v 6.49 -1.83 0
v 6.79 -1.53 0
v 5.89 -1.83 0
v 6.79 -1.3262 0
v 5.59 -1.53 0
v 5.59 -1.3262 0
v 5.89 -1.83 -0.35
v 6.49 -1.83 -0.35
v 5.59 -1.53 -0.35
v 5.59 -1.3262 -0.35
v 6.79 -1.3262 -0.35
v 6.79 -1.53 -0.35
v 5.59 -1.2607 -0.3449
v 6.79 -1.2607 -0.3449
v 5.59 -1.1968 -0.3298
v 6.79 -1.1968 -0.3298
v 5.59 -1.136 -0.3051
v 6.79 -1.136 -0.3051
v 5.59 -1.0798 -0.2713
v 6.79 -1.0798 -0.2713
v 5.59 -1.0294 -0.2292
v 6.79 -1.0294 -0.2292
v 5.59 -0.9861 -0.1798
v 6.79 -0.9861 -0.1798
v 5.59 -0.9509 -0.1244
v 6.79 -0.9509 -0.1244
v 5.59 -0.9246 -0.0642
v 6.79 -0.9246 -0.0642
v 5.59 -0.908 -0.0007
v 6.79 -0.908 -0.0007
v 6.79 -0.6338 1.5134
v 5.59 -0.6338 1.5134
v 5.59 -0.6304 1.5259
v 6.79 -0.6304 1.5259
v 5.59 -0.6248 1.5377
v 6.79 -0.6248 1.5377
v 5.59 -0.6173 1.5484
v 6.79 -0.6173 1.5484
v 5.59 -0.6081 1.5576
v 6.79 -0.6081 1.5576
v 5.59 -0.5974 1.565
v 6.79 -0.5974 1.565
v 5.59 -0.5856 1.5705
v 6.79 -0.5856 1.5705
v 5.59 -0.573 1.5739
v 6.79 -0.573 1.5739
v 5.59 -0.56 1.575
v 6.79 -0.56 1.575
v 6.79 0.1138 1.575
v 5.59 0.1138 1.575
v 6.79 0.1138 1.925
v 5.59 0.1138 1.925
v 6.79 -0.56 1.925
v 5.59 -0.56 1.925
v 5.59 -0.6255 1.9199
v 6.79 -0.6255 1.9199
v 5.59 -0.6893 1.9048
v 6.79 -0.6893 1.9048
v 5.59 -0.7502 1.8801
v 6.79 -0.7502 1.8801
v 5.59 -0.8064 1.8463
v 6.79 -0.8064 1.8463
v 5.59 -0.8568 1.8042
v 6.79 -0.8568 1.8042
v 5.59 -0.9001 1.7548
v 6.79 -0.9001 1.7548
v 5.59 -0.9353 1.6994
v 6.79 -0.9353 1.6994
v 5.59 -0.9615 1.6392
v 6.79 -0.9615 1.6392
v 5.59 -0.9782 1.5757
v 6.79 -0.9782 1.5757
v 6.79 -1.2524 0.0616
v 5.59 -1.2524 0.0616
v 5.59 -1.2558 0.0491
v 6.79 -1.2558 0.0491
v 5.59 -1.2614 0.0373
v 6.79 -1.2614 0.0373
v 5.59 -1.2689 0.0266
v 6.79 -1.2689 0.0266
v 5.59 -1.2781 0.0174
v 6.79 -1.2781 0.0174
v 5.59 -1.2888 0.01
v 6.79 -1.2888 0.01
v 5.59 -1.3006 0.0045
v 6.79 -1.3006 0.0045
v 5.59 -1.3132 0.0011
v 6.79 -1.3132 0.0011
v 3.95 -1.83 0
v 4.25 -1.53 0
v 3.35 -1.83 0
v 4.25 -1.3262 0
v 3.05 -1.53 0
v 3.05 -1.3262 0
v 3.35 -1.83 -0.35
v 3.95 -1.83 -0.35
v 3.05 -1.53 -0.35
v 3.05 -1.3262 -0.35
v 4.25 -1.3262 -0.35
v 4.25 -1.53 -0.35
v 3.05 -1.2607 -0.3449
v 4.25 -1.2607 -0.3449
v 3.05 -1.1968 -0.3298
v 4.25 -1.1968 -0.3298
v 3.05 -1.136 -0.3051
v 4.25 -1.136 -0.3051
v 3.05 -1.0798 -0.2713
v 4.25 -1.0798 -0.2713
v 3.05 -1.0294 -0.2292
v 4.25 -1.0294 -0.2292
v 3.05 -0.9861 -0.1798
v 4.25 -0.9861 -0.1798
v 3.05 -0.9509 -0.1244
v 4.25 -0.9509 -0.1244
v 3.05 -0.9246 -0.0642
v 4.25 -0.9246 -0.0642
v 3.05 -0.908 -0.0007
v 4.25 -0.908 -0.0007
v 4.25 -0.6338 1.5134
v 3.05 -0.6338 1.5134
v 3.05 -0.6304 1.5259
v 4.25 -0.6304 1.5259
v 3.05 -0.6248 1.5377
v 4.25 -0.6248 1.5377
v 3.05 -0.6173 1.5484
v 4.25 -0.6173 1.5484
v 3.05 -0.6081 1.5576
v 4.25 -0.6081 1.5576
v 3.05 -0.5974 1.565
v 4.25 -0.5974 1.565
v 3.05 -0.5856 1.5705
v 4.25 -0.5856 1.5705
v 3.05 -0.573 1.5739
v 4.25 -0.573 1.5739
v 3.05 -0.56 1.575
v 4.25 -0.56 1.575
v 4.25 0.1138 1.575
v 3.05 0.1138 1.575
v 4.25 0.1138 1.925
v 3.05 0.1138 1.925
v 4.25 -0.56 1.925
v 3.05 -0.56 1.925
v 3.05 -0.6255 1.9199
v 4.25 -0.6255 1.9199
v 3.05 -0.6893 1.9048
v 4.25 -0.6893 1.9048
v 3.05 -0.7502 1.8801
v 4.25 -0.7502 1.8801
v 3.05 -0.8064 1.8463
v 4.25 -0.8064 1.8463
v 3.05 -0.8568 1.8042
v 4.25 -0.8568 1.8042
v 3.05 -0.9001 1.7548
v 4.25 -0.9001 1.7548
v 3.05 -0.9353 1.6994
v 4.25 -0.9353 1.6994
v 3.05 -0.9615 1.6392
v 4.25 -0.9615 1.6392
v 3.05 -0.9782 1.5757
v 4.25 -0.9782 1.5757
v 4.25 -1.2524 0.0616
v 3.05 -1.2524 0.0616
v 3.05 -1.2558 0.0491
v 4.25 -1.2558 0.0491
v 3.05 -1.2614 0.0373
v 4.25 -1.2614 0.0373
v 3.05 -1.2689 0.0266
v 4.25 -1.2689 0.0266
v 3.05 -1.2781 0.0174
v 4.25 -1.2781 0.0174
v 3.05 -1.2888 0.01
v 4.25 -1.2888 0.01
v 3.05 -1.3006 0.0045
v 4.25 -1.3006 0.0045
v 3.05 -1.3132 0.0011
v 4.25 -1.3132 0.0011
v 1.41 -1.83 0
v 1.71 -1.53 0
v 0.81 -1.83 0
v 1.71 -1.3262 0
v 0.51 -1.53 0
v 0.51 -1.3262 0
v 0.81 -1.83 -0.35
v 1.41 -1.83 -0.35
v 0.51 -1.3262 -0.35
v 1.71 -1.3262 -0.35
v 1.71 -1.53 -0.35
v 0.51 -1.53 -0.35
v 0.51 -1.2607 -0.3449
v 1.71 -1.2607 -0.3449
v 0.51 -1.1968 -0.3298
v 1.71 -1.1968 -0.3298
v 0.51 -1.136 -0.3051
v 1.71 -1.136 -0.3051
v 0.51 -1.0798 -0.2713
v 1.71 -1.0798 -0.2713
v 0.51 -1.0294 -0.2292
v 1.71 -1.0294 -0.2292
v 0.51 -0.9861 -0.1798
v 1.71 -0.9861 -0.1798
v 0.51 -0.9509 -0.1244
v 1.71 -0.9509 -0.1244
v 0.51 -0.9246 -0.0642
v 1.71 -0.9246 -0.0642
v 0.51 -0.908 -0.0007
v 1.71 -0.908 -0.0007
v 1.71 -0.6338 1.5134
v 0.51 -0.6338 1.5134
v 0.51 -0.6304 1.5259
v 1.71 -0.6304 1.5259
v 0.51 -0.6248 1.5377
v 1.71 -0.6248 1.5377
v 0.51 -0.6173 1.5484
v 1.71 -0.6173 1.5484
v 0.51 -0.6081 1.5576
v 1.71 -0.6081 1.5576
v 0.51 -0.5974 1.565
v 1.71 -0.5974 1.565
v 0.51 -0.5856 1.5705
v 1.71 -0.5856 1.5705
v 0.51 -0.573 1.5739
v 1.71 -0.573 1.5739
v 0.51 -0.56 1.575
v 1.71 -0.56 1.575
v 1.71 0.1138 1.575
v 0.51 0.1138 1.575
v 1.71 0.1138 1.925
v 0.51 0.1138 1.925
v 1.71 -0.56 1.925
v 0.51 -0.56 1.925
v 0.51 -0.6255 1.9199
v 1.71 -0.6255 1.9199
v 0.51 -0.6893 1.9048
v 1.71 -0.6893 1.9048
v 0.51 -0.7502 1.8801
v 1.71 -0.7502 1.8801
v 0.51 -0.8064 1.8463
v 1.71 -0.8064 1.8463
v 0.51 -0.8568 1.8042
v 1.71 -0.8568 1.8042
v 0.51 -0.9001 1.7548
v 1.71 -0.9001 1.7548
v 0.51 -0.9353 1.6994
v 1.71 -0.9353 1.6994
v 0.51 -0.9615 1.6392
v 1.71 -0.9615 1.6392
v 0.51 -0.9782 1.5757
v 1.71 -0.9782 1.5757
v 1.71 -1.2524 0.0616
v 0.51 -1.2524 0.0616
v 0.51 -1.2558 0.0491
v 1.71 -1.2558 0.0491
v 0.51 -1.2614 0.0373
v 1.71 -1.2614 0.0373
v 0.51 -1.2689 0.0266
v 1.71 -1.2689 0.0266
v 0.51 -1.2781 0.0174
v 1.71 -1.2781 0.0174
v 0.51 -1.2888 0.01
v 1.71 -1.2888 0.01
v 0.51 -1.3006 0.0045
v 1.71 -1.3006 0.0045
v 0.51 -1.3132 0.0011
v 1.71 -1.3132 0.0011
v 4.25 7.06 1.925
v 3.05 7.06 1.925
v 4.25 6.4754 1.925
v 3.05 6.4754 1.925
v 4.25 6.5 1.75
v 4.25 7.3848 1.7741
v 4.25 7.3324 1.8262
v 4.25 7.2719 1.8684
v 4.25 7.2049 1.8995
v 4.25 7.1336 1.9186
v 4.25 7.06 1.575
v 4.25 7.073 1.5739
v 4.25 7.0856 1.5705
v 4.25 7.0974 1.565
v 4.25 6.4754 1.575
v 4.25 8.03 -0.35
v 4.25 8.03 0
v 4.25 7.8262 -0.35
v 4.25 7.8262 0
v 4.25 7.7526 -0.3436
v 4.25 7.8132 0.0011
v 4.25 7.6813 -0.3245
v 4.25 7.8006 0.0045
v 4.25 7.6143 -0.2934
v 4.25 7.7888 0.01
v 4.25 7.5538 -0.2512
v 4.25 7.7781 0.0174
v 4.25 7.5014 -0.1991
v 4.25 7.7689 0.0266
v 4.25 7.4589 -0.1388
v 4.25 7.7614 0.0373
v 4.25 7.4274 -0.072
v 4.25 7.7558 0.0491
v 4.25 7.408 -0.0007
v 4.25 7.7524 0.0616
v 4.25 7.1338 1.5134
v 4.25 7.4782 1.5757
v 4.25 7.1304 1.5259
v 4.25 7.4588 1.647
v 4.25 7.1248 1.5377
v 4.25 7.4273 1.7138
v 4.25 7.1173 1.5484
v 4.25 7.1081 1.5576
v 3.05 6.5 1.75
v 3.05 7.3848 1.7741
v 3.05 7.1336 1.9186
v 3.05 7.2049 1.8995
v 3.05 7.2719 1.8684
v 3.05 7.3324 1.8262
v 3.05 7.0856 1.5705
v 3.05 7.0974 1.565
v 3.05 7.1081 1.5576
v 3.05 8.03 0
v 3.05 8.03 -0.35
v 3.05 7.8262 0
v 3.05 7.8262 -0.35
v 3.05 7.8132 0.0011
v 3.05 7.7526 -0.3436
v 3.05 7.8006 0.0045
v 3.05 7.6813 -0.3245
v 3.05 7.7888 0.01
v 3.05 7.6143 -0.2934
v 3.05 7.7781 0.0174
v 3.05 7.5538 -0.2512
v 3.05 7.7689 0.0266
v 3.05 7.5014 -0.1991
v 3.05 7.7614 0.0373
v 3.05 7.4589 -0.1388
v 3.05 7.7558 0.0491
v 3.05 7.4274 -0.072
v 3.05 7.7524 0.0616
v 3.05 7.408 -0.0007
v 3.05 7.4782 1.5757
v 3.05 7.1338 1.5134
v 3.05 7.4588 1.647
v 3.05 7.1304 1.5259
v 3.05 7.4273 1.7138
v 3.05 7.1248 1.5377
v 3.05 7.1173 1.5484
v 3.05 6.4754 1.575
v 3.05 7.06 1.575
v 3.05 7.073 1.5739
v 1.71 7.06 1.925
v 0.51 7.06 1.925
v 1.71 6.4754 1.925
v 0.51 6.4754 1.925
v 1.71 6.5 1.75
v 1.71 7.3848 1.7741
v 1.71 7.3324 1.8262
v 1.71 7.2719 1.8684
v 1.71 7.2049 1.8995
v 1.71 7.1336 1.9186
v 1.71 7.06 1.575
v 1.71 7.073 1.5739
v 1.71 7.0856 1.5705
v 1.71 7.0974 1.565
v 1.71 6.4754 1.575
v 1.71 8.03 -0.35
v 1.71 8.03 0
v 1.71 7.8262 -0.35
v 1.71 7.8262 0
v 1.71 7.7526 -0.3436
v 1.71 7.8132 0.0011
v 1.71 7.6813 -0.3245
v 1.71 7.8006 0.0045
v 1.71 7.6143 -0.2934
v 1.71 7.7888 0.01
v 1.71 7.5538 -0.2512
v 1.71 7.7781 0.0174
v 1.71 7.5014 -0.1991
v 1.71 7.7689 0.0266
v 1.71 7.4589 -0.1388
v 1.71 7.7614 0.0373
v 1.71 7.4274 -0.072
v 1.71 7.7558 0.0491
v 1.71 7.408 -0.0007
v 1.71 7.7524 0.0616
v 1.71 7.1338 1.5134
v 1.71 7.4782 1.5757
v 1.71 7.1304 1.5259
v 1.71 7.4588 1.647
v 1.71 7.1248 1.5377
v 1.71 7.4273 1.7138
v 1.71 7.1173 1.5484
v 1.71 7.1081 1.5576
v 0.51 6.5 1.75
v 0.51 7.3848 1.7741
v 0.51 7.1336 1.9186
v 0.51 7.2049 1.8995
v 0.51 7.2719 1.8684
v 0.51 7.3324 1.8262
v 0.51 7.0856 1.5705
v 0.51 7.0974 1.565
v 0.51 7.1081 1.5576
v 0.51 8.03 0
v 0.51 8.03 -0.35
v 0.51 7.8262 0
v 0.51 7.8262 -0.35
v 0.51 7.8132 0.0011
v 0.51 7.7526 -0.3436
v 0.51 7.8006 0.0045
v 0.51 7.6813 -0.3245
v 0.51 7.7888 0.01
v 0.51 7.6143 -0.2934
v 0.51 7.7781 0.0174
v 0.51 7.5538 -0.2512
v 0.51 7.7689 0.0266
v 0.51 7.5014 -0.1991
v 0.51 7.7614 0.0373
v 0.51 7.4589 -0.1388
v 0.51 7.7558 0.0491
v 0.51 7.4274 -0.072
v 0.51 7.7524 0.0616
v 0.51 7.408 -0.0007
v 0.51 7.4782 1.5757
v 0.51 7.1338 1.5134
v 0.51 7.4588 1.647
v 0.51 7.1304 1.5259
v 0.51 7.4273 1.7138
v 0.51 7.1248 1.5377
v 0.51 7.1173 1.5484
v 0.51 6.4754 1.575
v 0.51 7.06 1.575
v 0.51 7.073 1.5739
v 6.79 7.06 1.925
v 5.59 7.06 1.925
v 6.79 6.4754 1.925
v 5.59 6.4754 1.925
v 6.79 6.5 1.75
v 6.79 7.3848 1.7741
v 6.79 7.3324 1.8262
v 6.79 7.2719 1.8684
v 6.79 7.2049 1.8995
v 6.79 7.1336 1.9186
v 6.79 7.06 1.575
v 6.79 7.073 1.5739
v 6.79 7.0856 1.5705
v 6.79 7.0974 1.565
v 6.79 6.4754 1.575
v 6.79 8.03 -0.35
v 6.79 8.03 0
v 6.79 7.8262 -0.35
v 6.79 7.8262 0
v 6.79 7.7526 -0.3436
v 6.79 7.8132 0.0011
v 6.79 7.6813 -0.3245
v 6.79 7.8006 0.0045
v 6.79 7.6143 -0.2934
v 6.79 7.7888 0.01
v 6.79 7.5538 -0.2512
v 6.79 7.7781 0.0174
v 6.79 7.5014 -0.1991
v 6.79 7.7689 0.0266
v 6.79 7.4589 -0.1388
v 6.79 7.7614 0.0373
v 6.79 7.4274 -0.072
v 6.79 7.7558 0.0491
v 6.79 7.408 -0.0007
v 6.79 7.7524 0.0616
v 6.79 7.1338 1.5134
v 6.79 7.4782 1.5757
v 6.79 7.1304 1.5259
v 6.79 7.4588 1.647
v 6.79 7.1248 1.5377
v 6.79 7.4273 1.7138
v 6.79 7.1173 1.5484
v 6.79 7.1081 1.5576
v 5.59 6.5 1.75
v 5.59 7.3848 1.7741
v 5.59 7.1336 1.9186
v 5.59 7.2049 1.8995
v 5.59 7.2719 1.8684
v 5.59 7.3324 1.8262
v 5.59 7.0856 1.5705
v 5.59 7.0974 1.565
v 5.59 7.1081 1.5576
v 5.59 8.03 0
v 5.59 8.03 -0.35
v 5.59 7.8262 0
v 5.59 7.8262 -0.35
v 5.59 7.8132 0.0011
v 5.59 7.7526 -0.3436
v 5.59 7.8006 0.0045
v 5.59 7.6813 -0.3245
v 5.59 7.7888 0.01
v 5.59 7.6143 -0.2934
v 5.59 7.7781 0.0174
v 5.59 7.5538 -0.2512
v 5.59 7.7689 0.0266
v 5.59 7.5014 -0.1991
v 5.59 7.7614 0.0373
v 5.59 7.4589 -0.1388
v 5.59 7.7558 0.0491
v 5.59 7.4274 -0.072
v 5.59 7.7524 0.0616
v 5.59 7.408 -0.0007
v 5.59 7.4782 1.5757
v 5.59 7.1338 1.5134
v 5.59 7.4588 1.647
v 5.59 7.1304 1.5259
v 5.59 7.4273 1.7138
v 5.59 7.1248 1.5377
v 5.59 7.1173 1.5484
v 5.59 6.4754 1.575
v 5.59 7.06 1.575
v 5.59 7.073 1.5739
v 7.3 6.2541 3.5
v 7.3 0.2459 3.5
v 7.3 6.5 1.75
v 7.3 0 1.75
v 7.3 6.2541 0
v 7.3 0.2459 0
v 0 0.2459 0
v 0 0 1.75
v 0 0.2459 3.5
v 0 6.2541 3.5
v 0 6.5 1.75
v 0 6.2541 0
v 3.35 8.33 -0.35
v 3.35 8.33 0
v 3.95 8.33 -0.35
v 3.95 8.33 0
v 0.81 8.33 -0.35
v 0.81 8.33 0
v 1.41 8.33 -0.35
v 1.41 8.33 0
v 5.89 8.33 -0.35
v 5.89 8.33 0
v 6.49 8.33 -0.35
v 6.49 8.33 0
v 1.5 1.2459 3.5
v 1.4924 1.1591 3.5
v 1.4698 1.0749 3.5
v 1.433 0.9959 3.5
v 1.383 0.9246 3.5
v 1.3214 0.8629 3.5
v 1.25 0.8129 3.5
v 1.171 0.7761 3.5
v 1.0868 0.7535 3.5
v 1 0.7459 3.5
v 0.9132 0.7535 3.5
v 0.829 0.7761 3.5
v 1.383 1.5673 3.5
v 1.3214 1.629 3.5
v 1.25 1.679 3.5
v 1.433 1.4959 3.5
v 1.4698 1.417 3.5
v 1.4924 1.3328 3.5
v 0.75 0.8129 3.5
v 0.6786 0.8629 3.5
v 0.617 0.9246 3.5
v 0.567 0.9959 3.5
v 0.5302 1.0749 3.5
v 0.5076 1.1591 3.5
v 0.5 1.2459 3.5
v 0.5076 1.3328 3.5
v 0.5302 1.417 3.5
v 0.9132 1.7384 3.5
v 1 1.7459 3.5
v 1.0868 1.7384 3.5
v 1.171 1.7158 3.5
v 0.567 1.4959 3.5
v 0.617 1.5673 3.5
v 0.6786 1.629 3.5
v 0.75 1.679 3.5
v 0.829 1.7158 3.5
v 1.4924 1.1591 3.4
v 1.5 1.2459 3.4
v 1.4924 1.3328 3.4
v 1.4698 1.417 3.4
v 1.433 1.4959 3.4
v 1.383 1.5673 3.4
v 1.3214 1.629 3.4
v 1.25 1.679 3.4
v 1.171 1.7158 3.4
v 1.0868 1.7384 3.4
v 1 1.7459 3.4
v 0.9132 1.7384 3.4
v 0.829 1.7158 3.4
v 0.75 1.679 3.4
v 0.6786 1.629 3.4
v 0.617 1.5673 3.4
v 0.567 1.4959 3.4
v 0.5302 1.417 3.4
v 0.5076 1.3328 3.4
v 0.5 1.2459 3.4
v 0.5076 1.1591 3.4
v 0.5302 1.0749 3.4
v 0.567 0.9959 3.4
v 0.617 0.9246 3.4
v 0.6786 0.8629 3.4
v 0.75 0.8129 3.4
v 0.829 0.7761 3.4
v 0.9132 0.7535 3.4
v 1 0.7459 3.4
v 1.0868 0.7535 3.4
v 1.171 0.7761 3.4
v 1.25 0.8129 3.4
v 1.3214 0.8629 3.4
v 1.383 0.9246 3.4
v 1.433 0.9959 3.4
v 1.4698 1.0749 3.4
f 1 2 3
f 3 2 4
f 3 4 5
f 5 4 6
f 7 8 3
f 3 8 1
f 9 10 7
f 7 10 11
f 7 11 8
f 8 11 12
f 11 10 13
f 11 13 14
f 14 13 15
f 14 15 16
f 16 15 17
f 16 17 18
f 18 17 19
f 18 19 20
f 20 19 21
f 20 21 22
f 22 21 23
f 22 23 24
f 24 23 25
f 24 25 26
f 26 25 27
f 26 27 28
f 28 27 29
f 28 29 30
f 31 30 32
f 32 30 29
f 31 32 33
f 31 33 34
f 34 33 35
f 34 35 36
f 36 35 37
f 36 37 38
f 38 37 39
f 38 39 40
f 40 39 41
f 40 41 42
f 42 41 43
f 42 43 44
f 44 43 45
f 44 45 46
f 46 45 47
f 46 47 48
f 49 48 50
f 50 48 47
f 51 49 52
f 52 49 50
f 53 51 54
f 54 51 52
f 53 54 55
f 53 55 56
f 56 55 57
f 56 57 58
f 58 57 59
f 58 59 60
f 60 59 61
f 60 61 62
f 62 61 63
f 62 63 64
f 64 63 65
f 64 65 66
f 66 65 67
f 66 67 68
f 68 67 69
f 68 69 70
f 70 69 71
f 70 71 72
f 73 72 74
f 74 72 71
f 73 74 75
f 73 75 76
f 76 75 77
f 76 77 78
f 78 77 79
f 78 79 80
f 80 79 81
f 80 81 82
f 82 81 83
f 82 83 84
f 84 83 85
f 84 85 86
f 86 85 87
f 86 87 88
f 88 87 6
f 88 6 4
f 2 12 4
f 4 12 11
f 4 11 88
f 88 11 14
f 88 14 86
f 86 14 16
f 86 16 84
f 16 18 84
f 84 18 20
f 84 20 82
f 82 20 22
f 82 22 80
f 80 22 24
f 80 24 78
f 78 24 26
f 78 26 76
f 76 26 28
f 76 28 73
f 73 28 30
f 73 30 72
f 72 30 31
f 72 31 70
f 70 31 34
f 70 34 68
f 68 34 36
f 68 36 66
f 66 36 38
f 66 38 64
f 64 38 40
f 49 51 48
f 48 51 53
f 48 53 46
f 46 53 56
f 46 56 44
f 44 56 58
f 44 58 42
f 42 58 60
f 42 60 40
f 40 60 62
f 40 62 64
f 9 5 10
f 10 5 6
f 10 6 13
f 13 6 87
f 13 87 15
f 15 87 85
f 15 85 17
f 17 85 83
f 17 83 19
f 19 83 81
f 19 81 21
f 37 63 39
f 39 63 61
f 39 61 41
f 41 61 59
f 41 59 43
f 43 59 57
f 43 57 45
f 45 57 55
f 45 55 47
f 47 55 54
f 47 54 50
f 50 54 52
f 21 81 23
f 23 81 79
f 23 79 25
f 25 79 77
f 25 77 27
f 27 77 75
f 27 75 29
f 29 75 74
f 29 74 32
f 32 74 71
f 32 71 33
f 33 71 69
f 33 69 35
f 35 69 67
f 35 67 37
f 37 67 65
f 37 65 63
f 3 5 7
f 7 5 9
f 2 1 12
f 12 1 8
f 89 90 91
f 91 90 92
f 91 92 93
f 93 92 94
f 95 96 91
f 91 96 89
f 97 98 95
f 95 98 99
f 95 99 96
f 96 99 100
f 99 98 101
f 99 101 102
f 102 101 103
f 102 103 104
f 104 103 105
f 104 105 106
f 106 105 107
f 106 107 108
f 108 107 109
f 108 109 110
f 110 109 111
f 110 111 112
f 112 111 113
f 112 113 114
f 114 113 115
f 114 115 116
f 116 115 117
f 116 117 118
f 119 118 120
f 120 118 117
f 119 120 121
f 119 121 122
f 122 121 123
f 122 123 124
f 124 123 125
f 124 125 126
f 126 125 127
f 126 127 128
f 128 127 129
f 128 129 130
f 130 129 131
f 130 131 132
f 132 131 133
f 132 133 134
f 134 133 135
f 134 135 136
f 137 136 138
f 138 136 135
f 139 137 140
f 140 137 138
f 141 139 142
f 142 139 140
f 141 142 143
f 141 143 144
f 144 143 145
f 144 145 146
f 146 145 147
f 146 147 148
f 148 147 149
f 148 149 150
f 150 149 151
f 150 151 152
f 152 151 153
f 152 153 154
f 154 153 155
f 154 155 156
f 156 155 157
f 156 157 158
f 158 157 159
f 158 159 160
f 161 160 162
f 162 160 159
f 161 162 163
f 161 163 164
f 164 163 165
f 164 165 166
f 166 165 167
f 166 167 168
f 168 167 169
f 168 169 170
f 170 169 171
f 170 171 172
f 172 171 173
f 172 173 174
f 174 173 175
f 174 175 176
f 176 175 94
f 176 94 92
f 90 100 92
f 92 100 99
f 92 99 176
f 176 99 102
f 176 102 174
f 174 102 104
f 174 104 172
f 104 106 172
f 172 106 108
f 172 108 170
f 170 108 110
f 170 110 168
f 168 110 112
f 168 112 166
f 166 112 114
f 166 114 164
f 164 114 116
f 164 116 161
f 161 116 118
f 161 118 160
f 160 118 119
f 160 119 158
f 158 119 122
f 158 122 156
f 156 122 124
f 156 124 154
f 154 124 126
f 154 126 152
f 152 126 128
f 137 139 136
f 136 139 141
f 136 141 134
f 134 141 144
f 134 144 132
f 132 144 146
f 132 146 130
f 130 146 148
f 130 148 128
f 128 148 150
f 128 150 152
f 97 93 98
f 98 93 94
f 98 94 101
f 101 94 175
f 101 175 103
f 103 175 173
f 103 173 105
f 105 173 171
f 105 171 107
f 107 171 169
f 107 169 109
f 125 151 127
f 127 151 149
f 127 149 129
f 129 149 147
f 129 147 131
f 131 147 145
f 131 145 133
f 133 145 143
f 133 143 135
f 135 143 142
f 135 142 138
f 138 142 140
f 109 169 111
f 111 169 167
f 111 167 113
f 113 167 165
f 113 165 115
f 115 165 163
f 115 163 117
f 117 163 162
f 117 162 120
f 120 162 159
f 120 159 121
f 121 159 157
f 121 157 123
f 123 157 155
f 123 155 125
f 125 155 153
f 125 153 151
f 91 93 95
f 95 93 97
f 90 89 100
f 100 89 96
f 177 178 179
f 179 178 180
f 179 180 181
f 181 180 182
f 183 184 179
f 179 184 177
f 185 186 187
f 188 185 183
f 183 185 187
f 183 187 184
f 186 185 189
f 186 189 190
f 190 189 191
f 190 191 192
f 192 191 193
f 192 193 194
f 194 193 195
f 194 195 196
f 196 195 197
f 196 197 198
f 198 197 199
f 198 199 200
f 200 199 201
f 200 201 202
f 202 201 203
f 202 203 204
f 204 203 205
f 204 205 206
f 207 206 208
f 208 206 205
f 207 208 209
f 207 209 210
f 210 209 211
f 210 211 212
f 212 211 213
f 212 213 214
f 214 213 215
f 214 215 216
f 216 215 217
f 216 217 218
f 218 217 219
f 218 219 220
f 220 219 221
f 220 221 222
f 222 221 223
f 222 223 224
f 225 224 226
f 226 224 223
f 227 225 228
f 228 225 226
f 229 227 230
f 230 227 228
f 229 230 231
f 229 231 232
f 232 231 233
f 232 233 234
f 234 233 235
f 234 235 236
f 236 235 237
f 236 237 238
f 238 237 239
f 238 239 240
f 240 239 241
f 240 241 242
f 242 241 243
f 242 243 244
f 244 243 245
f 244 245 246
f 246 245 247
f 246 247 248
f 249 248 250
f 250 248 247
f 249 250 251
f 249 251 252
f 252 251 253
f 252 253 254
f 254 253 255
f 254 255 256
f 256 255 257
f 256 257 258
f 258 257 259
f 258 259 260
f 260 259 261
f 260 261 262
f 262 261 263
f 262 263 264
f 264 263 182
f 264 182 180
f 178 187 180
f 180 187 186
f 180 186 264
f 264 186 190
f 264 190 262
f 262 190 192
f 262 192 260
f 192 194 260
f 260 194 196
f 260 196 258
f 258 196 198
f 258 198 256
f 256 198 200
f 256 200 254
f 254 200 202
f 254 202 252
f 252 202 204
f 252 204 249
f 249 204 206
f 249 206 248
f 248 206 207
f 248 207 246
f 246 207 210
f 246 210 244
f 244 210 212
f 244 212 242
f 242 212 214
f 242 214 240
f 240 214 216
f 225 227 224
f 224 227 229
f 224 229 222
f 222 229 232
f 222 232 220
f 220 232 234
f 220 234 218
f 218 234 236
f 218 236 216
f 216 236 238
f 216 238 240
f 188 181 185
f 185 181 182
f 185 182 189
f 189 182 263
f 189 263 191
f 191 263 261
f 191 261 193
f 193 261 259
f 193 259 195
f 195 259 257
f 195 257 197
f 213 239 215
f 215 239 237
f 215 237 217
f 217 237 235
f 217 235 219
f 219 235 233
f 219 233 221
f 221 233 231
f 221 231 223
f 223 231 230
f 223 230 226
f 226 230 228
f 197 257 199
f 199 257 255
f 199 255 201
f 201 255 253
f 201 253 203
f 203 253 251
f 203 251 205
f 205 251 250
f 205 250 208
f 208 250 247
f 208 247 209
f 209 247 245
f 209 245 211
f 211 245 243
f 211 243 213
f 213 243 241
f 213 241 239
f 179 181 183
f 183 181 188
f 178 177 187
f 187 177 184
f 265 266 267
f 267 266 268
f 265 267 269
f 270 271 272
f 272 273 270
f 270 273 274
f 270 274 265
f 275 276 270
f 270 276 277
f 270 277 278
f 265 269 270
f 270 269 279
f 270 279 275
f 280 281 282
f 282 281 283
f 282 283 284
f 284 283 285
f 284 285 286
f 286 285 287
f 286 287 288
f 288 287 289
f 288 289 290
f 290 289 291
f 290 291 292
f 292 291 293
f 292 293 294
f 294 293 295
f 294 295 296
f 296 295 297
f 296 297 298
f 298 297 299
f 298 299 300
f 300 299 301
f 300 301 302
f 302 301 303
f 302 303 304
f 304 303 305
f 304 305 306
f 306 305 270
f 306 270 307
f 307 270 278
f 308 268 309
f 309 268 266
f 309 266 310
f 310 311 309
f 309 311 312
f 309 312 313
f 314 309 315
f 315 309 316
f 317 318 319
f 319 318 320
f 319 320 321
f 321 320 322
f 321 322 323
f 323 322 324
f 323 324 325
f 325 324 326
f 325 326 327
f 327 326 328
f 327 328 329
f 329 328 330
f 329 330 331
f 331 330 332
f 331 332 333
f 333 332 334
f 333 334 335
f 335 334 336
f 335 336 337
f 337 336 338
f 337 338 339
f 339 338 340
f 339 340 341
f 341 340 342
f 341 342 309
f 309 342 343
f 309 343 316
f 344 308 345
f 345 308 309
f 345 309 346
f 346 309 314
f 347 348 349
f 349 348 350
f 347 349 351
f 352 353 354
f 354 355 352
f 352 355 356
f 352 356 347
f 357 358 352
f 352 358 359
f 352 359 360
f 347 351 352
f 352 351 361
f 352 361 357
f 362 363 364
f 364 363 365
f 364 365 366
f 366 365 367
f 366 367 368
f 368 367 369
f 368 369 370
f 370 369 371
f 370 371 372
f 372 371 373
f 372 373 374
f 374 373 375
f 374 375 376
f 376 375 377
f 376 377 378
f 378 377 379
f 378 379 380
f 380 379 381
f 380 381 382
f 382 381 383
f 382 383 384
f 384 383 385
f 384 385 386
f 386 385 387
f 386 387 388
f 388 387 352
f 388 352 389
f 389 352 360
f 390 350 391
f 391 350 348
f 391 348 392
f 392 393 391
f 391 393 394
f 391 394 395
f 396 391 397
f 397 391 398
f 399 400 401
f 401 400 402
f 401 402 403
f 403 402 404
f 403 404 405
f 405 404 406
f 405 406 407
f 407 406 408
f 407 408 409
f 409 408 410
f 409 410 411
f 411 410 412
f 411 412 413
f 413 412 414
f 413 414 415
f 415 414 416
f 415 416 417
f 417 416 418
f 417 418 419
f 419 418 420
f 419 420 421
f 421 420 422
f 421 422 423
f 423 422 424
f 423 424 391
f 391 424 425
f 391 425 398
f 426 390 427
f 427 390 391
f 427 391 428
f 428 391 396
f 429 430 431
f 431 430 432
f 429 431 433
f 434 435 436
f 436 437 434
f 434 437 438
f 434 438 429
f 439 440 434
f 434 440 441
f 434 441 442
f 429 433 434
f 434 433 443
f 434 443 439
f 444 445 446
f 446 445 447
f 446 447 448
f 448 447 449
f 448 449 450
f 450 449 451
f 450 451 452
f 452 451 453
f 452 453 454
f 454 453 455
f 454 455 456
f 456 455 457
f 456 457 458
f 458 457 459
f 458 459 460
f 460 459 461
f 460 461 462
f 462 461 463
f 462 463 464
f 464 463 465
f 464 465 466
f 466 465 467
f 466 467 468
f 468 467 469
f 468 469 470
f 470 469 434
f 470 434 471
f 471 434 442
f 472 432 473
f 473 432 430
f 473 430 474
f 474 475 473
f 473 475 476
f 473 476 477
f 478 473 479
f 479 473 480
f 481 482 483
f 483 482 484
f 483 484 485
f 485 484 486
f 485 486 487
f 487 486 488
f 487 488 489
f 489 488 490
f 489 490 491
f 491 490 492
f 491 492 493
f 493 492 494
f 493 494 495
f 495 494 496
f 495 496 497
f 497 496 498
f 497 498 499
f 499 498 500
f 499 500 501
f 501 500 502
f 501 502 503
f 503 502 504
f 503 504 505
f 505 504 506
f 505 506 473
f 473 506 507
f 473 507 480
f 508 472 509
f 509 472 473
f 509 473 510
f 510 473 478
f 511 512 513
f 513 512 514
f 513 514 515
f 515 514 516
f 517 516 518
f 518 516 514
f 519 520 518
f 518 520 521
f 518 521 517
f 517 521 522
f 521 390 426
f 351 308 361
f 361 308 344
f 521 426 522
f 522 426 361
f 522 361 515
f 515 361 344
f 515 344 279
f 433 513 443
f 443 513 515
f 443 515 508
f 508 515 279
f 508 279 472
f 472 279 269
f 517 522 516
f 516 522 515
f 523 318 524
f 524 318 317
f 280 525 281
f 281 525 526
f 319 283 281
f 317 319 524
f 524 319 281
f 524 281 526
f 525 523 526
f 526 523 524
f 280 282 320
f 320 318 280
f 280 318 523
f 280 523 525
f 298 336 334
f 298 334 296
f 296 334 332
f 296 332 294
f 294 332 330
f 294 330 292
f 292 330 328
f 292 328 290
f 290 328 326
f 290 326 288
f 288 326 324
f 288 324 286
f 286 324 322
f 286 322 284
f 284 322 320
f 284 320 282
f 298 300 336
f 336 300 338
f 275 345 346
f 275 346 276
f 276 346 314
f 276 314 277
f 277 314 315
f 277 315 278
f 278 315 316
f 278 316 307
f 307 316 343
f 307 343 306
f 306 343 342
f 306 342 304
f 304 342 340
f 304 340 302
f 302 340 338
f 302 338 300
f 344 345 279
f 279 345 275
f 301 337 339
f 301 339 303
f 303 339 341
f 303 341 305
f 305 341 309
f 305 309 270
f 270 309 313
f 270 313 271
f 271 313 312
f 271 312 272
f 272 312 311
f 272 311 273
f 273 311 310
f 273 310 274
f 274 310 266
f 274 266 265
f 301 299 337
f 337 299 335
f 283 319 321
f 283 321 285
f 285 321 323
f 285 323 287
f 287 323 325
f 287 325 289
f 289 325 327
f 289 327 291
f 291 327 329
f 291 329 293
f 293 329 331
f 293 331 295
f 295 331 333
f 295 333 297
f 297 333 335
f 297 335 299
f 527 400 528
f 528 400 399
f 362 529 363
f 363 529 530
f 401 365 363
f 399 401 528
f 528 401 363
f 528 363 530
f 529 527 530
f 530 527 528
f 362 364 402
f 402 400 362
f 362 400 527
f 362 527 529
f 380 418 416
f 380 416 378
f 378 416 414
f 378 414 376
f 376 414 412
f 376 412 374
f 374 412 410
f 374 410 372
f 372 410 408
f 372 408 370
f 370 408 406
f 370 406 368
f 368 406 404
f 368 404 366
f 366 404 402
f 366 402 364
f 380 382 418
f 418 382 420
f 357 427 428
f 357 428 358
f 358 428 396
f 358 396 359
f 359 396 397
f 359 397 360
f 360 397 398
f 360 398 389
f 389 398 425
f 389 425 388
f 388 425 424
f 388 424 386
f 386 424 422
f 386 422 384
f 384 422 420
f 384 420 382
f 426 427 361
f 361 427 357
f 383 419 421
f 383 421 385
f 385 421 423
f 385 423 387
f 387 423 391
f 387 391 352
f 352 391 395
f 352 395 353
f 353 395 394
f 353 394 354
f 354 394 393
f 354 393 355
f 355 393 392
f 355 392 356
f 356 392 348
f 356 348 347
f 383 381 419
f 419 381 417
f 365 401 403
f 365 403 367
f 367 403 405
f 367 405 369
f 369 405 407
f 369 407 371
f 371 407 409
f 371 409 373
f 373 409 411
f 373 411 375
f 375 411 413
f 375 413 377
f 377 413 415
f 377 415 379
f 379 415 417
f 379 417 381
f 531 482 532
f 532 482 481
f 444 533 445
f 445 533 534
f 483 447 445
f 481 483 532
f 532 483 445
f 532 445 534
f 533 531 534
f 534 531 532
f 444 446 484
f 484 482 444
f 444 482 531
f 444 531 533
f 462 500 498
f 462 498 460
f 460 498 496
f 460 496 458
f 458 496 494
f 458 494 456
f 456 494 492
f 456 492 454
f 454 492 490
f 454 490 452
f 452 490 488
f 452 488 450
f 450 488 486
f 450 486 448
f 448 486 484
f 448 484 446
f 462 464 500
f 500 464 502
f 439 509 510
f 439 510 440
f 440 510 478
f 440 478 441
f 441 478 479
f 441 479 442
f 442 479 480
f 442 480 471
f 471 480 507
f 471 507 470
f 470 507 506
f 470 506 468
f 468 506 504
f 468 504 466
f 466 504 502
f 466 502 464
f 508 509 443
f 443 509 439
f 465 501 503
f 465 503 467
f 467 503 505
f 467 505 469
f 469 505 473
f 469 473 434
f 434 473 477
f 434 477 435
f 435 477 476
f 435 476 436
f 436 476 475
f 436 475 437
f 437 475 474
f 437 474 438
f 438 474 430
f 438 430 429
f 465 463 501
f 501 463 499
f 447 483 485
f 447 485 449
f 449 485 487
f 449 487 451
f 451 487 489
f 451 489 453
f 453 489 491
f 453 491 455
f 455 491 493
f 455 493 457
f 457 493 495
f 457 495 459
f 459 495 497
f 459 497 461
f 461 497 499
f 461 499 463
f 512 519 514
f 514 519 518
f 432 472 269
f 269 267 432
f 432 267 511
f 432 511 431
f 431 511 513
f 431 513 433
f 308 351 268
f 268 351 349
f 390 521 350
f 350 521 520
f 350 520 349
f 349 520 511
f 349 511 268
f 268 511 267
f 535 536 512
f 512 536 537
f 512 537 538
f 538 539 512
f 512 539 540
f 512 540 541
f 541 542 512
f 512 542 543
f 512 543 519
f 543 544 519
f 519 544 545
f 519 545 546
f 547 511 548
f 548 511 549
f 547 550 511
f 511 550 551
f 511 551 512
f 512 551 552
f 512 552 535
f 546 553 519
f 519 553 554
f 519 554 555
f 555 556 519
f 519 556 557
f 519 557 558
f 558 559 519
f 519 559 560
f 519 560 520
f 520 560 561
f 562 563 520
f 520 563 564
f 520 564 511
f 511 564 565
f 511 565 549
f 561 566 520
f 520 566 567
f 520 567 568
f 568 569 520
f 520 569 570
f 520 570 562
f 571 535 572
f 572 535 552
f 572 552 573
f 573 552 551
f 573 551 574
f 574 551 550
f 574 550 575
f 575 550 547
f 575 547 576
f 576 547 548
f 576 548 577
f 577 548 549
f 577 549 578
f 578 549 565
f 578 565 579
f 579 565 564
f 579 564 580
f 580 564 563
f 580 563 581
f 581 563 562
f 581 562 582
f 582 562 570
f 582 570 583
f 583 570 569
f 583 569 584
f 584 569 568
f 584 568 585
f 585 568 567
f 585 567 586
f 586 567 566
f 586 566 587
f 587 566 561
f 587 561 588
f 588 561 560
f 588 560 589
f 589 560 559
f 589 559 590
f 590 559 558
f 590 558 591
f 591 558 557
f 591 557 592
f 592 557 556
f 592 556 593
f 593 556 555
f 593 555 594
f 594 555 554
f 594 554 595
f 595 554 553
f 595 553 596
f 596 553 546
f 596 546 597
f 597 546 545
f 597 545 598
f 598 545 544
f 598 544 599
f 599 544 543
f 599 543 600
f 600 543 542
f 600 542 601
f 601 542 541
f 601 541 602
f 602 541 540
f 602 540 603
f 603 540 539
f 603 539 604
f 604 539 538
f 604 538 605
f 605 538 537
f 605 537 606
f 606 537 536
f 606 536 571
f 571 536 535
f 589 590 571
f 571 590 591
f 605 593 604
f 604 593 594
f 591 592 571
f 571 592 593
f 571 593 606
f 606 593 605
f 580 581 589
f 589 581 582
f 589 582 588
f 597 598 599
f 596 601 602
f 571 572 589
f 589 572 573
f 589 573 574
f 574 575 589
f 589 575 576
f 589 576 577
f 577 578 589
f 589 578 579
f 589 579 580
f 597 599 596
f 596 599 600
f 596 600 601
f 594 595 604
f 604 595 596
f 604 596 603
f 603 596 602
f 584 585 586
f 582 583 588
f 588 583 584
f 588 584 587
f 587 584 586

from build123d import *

# Parameters (mm, degrees)
SKETCH1_W           = 7.3
SKETCH1_H           = 6.5
BOSS_EXTRUDE1_DEPTH = 1.75
SKETCH2_W           = 7.3
SKETCH2_H           = 6.5
BOSS_EXTRUDE2_DEPTH = 1.75
DRAFT1_ANGLE        = 8
DRAFT2_ANGLE        = -8
EXTRUDE_THIN2_DEPTH = 0.6
LPATTERN1_COUNT     = 3
LPATTERN1_PITCH     = 2.54
CHAMFER1_SIZE       = 0.3
CHAMFER2_SIZE       = 0.3
CHAMFER3_SIZE       = 0.3
MIRROR1_START       = 0.51
MIRROR1_DEPTH       = 1.2
MIRROR1_START_2     = 3.05
MIRROR1_2_DEPTH     = 1.2
MIRROR1_START_3     = 5.59
MIRROR1_3_DEPTH     = 1.2
MIRROR1_START_4     = -5.529575029
MIRROR1_4_OUTLINE_W = 7.887220049
MIRROR1_4_OUTLINE_H = 0.35
MIRROR1_4_DEPTH     = 0.212132034
MIRROR1_START_5     = -5.317442995
MIRROR1_5_OUTLINE_W = 1.796051224
MIRROR1_5_OUTLINE_H = 0.35
MIRROR1_5_DEPTH     = 1.796051225
MIRROR1_START_6     = -3.369650441
MIRROR1_6_OUTLINE_W = 1.796051224
MIRROR1_6_OUTLINE_H = 0.35
MIRROR1_6_DEPTH     = 1.644309895
MIRROR1_START_7     = -1.573599217
MIRROR1_7_OUTLINE_W = 1.520677503
MIRROR1_7_OUTLINE_H = 0.35
MIRROR1_7_DEPTH     = 0.84090524
SKETCH4_R           = 0.5
CUT_EXTRUDE1_DEPTH  = 0.1


with BuildPart() as part:
    # Sketch1 → Boss-Extrude1 (new body)
    with BuildSketch(Plane.XY.offset(1.75)):
        with Locations((3.65, 3.25)):
            Rectangle(SKETCH1_W, SKETCH1_H)
    extrude(amount=BOSS_EXTRUDE1_DEPTH)

    # Draft1
    draft1_faces = [part.faces().sort_by_distance(p)[0] for p in [
        (3.65, 6.5, 2.625),
        (3.65, 0, 2.625),
    ]]
    draft(draft1_faces, Plane.XY.offset(1.75), DRAFT1_ANGLE)



with BuildPart() as body_2:
    # Sketch2 → Boss-Extrude2 (new body)
    with BuildSketch(Plane.XY.offset(1.75)):
        with Locations((3.65, 3.25)):
            Rectangle(SKETCH2_W, SKETCH2_H)
    extrude(amount=-BOSS_EXTRUDE2_DEPTH)

    # Draft2
    draft2_faces = [body_2.faces().sort_by_distance(p)[0] for p in [
        (3.65, 6.5, 0.875),
        (3.65, 0, 0.875),
    ]]
    draft(draft2_faces, Plane.XY.offset(1.75), DRAFT2_ANGLE)


with BuildPart() as body_3:
    # Sketch3 → Extrude-Thin2 (new, symmetric)
    with BuildSketch(Plane(origin=(6.19, 0, 0), x_dir=(0, 0, -1), z_dir=(1, 0, 0))):
        with BuildLine():
            Line((-1.925, 0.113838246), (-1.925, -0.56))
            ThreePointArc((-1.925, -0.56), (-1.826198499, -0.832432633), (-1.575731579, -0.978198192))
            Line((-1.575731579, -0.978198192), (-0.061635604, -1.252386078))
            ThreePointArc((-0.061635604, -1.252386078), (-0.017435559, -1.278109412), (0, -1.326185759))
            Line((0, -1.326185759), (0, -1.83))
            Line((0, -1.83), (0.35, -1.83))
            Line((0.35, -1.83), (0.35, -1.326185759))
            ThreePointArc((0.35, -1.326185759), (0.251198499, -1.053753126), (0.000731579, -0.907987567))
            Line((0.000731579, -0.907987567), (-1.513364396, -0.633799681))
            ThreePointArc((-1.513364396, -0.633799681), (-1.557564441, -0.608076347), (-1.575, -0.56))
            Line((-1.575, -0.56), (-1.575, 0.113838246))
            Line((-1.575, 0.113838246), (-1.925, 0.113838246))
        make_face()
    extrude_thin2 = extrude(amount=EXTRUDE_THIN2_DEPTH, both=True)

    # Chamfer1
    chamfer1_edges = [body_3.edges().sort_by_distance(p)[0] for p in [
        (5.59, -1.83, -0.175),
        (6.79, -1.83, -0.175),
    ]]
    chamfer(chamfer1_edges, length=CHAMFER1_SIZE)


with BuildPart() as lpattern1_1:
    # LPattern1: pattern copy
    add(extrude_thin2.moved(Location(Vector(-1, 0, 0) * (1 * LPATTERN1_PITCH))))

    # Chamfer2
    chamfer2_edges = [lpattern1_1.edges().sort_by_distance(p)[0] for p in [
        (3.05, -1.83, -0.175),
        (4.25, -1.83, -0.175),
    ]]
    chamfer(chamfer2_edges, length=CHAMFER2_SIZE)


with BuildPart() as lpattern1_2:
    # LPattern1: pattern copy
    add(extrude_thin2.moved(Location(Vector(-1, 0, 0) * (2 * LPATTERN1_PITCH))))

    # Chamfer3
    chamfer3_edges = [lpattern1_2.edges().sort_by_distance(p)[0] for p in [
        (0.51, -1.83, -0.175),
        (1.71, -1.83, -0.175),
    ]]
    chamfer(chamfer3_edges, length=CHAMFER3_SIZE)


with BuildPart() as part_1:
    add(part.part)

    add(body_2.part)  # Mirror1 merges body 2
    # Mirror1: read off the stored shape, not the designer's step
    # Mirror1 outline → Mirror1 (add)
    with BuildSketch(Plane.YZ.offset(MIRROR1_START)):
        with BuildLine():
            Line((8.33, 0), (7.826185759, 0))
            ThreePointArc((7.826185759, 0), (7.778109412, 0.017435559), (7.752386078, 0.061635604))
            Line((7.752386078, 0.061635604), (7.478198192, 1.575731579))
            ThreePointArc((7.478198192, 1.575731579), (7.332432633, 1.826198499), (7.06, 1.925))
            Line((7.06, 1.925), (6.475405354, 1.925))
            Line((6.475405354, 1.925), (6.5, 1.75))
            Line((6.5, 1.75), (6.475405354, 1.575))
            Line((6.475405354, 1.575), (7.06, 1.575))
            ThreePointArc((7.06, 1.575), (7.108076347, 1.557564441), (7.133799681, 1.513364396))
            Line((7.133799681, 1.513364396), (7.407987567, -0.000731579))
            ThreePointArc((7.407987567, -0.000731579), (7.553753126, -0.251198499), (7.826185759, -0.35))
            Line((7.826185759, -0.35), (8.33, -0.35))
            Line((8.33, -0.35), (8.33, 0))
        make_face()
    extrude(amount=MIRROR1_DEPTH)

    # Mirror1 2 outline → Mirror1 2 (add)
    with BuildSketch(Plane.YZ.offset(MIRROR1_START_2)):
        with BuildLine():
            Line((8.33, 0), (7.826185759, 0))
            ThreePointArc((7.826185759, 0), (7.778109412, 0.017435559), (7.752386078, 0.061635604))
            Line((7.752386078, 0.061635604), (7.478198192, 1.575731579))
            ThreePointArc((7.478198192, 1.575731579), (7.332432633, 1.826198499), (7.06, 1.925))
            Line((7.06, 1.925), (6.475405354, 1.925))
            Line((6.475405354, 1.925), (6.5, 1.75))
            Line((6.5, 1.75), (6.475405354, 1.575))
            Line((6.475405354, 1.575), (7.06, 1.575))
            ThreePointArc((7.06, 1.575), (7.108076347, 1.557564441), (7.133799681, 1.513364396))
            Line((7.133799681, 1.513364396), (7.407987567, -0.000731579))
            ThreePointArc((7.407987567, -0.000731579), (7.553753126, -0.251198499), (7.826185759, -0.35))
            Line((7.826185759, -0.35), (8.33, -0.35))
            Line((8.33, -0.35), (8.33, 0))
        make_face()
    extrude(amount=MIRROR1_2_DEPTH)

    # Mirror1 3 outline → Mirror1 3 (add)
    with BuildSketch(Plane.YZ.offset(MIRROR1_START_3)):
        with BuildLine():
            Line((8.33, 0), (7.826185759, 0))
            ThreePointArc((7.826185759, 0), (7.778109412, 0.017435559), (7.752386078, 0.061635604))
            Line((7.752386078, 0.061635604), (7.478198192, 1.575731579))
            ThreePointArc((7.478198192, 1.575731579), (7.332432633, 1.826198499), (7.06, 1.925))
            Line((7.06, 1.925), (6.475405354, 1.925))
            Line((6.475405354, 1.925), (6.5, 1.75))
            Line((6.5, 1.75), (6.475405354, 1.575))
            Line((6.475405354, 1.575), (7.06, 1.575))
            ThreePointArc((7.06, 1.575), (7.108076347, 1.557564441), (7.133799681, 1.513364396))
            Line((7.133799681, 1.513364396), (7.407987567, -0.000731579))
            ThreePointArc((7.407987567, -0.000731579), (7.553753126, -0.251198499), (7.826185759, -0.35))
            Line((7.826185759, -0.35), (8.33, -0.35))
            Line((8.33, -0.35), (8.33, 0))
        make_face()
    extrude(amount=MIRROR1_3_DEPTH)

    # Mirror1 4 outline → Mirror1 4 (cut)
    with BuildSketch(Plane(origin=(0, 0, 0), x_dir=(0.7071067811865483, 0.7071067811865467, 0), z_dir=(0.7071067811865466, -0.7071067811865486, 0)).offset(MIRROR1_START_4)):
        with Locations((2.943610025, -0.175)):
            Rectangle(MIRROR1_4_OUTLINE_W, MIRROR1_4_OUTLINE_H)
    extrude(amount=MIRROR1_4_DEPTH, mode=Mode.SUBTRACT)

    # Mirror1 5 outline → Mirror1 5 (cut)
    with BuildSketch(Plane(origin=(0, 0, 0), x_dir=(0.7071067811865483, 0.7071067811865467, 0), z_dir=(0.7071067811865466, -0.7071067811865486, 0)).offset(MIRROR1_START_5)):
        with Locations((7.785245661, -0.175)):
            Rectangle(MIRROR1_5_OUTLINE_W, MIRROR1_5_OUTLINE_H)
    extrude(amount=MIRROR1_5_DEPTH, mode=Mode.SUBTRACT)

    # Mirror1 6 outline → Mirror1 6 (cut)
    with BuildSketch(Plane(origin=(0, 0, 0), x_dir=(0.7071067811865483, 0.7071067811865467, 0), z_dir=(0.7071067811865466, -0.7071067811865486, 0)).offset(MIRROR1_START_6)):
        with Locations((9.581296885, -0.175)):
            Rectangle(MIRROR1_6_OUTLINE_W, MIRROR1_6_OUTLINE_H)
    extrude(amount=MIRROR1_6_DEPTH, mode=Mode.SUBTRACT)

    # Mirror1 7 outline → Mirror1 7 (cut)
    with BuildSketch(Plane(origin=(0, 0, 0), x_dir=(0.7071067811865483, 0.7071067811865467, 0), z_dir=(0.7071067811865466, -0.7071067811865486, 0)).offset(MIRROR1_START_7)):
        with Locations((11.239661248, -0.175)):
            Rectangle(MIRROR1_7_OUTLINE_W, MIRROR1_7_OUTLINE_H)
    extrude(amount=MIRROR1_7_DEPTH, mode=Mode.SUBTRACT)

    # Sketch4 → Cut-Extrude1 (cut)
    with BuildSketch(Plane.XY.offset(3.5)):
        with Locations((1, 1.245946461)):
            Circle(SKETCH4_R)
    extrude(amount=-CUT_EXTRUDE1_DEPTH, mode=Mode.SUBTRACT)


solid = Compound([body_3.part, lpattern1_1.part, lpattern1_2.part, part_1.part])
